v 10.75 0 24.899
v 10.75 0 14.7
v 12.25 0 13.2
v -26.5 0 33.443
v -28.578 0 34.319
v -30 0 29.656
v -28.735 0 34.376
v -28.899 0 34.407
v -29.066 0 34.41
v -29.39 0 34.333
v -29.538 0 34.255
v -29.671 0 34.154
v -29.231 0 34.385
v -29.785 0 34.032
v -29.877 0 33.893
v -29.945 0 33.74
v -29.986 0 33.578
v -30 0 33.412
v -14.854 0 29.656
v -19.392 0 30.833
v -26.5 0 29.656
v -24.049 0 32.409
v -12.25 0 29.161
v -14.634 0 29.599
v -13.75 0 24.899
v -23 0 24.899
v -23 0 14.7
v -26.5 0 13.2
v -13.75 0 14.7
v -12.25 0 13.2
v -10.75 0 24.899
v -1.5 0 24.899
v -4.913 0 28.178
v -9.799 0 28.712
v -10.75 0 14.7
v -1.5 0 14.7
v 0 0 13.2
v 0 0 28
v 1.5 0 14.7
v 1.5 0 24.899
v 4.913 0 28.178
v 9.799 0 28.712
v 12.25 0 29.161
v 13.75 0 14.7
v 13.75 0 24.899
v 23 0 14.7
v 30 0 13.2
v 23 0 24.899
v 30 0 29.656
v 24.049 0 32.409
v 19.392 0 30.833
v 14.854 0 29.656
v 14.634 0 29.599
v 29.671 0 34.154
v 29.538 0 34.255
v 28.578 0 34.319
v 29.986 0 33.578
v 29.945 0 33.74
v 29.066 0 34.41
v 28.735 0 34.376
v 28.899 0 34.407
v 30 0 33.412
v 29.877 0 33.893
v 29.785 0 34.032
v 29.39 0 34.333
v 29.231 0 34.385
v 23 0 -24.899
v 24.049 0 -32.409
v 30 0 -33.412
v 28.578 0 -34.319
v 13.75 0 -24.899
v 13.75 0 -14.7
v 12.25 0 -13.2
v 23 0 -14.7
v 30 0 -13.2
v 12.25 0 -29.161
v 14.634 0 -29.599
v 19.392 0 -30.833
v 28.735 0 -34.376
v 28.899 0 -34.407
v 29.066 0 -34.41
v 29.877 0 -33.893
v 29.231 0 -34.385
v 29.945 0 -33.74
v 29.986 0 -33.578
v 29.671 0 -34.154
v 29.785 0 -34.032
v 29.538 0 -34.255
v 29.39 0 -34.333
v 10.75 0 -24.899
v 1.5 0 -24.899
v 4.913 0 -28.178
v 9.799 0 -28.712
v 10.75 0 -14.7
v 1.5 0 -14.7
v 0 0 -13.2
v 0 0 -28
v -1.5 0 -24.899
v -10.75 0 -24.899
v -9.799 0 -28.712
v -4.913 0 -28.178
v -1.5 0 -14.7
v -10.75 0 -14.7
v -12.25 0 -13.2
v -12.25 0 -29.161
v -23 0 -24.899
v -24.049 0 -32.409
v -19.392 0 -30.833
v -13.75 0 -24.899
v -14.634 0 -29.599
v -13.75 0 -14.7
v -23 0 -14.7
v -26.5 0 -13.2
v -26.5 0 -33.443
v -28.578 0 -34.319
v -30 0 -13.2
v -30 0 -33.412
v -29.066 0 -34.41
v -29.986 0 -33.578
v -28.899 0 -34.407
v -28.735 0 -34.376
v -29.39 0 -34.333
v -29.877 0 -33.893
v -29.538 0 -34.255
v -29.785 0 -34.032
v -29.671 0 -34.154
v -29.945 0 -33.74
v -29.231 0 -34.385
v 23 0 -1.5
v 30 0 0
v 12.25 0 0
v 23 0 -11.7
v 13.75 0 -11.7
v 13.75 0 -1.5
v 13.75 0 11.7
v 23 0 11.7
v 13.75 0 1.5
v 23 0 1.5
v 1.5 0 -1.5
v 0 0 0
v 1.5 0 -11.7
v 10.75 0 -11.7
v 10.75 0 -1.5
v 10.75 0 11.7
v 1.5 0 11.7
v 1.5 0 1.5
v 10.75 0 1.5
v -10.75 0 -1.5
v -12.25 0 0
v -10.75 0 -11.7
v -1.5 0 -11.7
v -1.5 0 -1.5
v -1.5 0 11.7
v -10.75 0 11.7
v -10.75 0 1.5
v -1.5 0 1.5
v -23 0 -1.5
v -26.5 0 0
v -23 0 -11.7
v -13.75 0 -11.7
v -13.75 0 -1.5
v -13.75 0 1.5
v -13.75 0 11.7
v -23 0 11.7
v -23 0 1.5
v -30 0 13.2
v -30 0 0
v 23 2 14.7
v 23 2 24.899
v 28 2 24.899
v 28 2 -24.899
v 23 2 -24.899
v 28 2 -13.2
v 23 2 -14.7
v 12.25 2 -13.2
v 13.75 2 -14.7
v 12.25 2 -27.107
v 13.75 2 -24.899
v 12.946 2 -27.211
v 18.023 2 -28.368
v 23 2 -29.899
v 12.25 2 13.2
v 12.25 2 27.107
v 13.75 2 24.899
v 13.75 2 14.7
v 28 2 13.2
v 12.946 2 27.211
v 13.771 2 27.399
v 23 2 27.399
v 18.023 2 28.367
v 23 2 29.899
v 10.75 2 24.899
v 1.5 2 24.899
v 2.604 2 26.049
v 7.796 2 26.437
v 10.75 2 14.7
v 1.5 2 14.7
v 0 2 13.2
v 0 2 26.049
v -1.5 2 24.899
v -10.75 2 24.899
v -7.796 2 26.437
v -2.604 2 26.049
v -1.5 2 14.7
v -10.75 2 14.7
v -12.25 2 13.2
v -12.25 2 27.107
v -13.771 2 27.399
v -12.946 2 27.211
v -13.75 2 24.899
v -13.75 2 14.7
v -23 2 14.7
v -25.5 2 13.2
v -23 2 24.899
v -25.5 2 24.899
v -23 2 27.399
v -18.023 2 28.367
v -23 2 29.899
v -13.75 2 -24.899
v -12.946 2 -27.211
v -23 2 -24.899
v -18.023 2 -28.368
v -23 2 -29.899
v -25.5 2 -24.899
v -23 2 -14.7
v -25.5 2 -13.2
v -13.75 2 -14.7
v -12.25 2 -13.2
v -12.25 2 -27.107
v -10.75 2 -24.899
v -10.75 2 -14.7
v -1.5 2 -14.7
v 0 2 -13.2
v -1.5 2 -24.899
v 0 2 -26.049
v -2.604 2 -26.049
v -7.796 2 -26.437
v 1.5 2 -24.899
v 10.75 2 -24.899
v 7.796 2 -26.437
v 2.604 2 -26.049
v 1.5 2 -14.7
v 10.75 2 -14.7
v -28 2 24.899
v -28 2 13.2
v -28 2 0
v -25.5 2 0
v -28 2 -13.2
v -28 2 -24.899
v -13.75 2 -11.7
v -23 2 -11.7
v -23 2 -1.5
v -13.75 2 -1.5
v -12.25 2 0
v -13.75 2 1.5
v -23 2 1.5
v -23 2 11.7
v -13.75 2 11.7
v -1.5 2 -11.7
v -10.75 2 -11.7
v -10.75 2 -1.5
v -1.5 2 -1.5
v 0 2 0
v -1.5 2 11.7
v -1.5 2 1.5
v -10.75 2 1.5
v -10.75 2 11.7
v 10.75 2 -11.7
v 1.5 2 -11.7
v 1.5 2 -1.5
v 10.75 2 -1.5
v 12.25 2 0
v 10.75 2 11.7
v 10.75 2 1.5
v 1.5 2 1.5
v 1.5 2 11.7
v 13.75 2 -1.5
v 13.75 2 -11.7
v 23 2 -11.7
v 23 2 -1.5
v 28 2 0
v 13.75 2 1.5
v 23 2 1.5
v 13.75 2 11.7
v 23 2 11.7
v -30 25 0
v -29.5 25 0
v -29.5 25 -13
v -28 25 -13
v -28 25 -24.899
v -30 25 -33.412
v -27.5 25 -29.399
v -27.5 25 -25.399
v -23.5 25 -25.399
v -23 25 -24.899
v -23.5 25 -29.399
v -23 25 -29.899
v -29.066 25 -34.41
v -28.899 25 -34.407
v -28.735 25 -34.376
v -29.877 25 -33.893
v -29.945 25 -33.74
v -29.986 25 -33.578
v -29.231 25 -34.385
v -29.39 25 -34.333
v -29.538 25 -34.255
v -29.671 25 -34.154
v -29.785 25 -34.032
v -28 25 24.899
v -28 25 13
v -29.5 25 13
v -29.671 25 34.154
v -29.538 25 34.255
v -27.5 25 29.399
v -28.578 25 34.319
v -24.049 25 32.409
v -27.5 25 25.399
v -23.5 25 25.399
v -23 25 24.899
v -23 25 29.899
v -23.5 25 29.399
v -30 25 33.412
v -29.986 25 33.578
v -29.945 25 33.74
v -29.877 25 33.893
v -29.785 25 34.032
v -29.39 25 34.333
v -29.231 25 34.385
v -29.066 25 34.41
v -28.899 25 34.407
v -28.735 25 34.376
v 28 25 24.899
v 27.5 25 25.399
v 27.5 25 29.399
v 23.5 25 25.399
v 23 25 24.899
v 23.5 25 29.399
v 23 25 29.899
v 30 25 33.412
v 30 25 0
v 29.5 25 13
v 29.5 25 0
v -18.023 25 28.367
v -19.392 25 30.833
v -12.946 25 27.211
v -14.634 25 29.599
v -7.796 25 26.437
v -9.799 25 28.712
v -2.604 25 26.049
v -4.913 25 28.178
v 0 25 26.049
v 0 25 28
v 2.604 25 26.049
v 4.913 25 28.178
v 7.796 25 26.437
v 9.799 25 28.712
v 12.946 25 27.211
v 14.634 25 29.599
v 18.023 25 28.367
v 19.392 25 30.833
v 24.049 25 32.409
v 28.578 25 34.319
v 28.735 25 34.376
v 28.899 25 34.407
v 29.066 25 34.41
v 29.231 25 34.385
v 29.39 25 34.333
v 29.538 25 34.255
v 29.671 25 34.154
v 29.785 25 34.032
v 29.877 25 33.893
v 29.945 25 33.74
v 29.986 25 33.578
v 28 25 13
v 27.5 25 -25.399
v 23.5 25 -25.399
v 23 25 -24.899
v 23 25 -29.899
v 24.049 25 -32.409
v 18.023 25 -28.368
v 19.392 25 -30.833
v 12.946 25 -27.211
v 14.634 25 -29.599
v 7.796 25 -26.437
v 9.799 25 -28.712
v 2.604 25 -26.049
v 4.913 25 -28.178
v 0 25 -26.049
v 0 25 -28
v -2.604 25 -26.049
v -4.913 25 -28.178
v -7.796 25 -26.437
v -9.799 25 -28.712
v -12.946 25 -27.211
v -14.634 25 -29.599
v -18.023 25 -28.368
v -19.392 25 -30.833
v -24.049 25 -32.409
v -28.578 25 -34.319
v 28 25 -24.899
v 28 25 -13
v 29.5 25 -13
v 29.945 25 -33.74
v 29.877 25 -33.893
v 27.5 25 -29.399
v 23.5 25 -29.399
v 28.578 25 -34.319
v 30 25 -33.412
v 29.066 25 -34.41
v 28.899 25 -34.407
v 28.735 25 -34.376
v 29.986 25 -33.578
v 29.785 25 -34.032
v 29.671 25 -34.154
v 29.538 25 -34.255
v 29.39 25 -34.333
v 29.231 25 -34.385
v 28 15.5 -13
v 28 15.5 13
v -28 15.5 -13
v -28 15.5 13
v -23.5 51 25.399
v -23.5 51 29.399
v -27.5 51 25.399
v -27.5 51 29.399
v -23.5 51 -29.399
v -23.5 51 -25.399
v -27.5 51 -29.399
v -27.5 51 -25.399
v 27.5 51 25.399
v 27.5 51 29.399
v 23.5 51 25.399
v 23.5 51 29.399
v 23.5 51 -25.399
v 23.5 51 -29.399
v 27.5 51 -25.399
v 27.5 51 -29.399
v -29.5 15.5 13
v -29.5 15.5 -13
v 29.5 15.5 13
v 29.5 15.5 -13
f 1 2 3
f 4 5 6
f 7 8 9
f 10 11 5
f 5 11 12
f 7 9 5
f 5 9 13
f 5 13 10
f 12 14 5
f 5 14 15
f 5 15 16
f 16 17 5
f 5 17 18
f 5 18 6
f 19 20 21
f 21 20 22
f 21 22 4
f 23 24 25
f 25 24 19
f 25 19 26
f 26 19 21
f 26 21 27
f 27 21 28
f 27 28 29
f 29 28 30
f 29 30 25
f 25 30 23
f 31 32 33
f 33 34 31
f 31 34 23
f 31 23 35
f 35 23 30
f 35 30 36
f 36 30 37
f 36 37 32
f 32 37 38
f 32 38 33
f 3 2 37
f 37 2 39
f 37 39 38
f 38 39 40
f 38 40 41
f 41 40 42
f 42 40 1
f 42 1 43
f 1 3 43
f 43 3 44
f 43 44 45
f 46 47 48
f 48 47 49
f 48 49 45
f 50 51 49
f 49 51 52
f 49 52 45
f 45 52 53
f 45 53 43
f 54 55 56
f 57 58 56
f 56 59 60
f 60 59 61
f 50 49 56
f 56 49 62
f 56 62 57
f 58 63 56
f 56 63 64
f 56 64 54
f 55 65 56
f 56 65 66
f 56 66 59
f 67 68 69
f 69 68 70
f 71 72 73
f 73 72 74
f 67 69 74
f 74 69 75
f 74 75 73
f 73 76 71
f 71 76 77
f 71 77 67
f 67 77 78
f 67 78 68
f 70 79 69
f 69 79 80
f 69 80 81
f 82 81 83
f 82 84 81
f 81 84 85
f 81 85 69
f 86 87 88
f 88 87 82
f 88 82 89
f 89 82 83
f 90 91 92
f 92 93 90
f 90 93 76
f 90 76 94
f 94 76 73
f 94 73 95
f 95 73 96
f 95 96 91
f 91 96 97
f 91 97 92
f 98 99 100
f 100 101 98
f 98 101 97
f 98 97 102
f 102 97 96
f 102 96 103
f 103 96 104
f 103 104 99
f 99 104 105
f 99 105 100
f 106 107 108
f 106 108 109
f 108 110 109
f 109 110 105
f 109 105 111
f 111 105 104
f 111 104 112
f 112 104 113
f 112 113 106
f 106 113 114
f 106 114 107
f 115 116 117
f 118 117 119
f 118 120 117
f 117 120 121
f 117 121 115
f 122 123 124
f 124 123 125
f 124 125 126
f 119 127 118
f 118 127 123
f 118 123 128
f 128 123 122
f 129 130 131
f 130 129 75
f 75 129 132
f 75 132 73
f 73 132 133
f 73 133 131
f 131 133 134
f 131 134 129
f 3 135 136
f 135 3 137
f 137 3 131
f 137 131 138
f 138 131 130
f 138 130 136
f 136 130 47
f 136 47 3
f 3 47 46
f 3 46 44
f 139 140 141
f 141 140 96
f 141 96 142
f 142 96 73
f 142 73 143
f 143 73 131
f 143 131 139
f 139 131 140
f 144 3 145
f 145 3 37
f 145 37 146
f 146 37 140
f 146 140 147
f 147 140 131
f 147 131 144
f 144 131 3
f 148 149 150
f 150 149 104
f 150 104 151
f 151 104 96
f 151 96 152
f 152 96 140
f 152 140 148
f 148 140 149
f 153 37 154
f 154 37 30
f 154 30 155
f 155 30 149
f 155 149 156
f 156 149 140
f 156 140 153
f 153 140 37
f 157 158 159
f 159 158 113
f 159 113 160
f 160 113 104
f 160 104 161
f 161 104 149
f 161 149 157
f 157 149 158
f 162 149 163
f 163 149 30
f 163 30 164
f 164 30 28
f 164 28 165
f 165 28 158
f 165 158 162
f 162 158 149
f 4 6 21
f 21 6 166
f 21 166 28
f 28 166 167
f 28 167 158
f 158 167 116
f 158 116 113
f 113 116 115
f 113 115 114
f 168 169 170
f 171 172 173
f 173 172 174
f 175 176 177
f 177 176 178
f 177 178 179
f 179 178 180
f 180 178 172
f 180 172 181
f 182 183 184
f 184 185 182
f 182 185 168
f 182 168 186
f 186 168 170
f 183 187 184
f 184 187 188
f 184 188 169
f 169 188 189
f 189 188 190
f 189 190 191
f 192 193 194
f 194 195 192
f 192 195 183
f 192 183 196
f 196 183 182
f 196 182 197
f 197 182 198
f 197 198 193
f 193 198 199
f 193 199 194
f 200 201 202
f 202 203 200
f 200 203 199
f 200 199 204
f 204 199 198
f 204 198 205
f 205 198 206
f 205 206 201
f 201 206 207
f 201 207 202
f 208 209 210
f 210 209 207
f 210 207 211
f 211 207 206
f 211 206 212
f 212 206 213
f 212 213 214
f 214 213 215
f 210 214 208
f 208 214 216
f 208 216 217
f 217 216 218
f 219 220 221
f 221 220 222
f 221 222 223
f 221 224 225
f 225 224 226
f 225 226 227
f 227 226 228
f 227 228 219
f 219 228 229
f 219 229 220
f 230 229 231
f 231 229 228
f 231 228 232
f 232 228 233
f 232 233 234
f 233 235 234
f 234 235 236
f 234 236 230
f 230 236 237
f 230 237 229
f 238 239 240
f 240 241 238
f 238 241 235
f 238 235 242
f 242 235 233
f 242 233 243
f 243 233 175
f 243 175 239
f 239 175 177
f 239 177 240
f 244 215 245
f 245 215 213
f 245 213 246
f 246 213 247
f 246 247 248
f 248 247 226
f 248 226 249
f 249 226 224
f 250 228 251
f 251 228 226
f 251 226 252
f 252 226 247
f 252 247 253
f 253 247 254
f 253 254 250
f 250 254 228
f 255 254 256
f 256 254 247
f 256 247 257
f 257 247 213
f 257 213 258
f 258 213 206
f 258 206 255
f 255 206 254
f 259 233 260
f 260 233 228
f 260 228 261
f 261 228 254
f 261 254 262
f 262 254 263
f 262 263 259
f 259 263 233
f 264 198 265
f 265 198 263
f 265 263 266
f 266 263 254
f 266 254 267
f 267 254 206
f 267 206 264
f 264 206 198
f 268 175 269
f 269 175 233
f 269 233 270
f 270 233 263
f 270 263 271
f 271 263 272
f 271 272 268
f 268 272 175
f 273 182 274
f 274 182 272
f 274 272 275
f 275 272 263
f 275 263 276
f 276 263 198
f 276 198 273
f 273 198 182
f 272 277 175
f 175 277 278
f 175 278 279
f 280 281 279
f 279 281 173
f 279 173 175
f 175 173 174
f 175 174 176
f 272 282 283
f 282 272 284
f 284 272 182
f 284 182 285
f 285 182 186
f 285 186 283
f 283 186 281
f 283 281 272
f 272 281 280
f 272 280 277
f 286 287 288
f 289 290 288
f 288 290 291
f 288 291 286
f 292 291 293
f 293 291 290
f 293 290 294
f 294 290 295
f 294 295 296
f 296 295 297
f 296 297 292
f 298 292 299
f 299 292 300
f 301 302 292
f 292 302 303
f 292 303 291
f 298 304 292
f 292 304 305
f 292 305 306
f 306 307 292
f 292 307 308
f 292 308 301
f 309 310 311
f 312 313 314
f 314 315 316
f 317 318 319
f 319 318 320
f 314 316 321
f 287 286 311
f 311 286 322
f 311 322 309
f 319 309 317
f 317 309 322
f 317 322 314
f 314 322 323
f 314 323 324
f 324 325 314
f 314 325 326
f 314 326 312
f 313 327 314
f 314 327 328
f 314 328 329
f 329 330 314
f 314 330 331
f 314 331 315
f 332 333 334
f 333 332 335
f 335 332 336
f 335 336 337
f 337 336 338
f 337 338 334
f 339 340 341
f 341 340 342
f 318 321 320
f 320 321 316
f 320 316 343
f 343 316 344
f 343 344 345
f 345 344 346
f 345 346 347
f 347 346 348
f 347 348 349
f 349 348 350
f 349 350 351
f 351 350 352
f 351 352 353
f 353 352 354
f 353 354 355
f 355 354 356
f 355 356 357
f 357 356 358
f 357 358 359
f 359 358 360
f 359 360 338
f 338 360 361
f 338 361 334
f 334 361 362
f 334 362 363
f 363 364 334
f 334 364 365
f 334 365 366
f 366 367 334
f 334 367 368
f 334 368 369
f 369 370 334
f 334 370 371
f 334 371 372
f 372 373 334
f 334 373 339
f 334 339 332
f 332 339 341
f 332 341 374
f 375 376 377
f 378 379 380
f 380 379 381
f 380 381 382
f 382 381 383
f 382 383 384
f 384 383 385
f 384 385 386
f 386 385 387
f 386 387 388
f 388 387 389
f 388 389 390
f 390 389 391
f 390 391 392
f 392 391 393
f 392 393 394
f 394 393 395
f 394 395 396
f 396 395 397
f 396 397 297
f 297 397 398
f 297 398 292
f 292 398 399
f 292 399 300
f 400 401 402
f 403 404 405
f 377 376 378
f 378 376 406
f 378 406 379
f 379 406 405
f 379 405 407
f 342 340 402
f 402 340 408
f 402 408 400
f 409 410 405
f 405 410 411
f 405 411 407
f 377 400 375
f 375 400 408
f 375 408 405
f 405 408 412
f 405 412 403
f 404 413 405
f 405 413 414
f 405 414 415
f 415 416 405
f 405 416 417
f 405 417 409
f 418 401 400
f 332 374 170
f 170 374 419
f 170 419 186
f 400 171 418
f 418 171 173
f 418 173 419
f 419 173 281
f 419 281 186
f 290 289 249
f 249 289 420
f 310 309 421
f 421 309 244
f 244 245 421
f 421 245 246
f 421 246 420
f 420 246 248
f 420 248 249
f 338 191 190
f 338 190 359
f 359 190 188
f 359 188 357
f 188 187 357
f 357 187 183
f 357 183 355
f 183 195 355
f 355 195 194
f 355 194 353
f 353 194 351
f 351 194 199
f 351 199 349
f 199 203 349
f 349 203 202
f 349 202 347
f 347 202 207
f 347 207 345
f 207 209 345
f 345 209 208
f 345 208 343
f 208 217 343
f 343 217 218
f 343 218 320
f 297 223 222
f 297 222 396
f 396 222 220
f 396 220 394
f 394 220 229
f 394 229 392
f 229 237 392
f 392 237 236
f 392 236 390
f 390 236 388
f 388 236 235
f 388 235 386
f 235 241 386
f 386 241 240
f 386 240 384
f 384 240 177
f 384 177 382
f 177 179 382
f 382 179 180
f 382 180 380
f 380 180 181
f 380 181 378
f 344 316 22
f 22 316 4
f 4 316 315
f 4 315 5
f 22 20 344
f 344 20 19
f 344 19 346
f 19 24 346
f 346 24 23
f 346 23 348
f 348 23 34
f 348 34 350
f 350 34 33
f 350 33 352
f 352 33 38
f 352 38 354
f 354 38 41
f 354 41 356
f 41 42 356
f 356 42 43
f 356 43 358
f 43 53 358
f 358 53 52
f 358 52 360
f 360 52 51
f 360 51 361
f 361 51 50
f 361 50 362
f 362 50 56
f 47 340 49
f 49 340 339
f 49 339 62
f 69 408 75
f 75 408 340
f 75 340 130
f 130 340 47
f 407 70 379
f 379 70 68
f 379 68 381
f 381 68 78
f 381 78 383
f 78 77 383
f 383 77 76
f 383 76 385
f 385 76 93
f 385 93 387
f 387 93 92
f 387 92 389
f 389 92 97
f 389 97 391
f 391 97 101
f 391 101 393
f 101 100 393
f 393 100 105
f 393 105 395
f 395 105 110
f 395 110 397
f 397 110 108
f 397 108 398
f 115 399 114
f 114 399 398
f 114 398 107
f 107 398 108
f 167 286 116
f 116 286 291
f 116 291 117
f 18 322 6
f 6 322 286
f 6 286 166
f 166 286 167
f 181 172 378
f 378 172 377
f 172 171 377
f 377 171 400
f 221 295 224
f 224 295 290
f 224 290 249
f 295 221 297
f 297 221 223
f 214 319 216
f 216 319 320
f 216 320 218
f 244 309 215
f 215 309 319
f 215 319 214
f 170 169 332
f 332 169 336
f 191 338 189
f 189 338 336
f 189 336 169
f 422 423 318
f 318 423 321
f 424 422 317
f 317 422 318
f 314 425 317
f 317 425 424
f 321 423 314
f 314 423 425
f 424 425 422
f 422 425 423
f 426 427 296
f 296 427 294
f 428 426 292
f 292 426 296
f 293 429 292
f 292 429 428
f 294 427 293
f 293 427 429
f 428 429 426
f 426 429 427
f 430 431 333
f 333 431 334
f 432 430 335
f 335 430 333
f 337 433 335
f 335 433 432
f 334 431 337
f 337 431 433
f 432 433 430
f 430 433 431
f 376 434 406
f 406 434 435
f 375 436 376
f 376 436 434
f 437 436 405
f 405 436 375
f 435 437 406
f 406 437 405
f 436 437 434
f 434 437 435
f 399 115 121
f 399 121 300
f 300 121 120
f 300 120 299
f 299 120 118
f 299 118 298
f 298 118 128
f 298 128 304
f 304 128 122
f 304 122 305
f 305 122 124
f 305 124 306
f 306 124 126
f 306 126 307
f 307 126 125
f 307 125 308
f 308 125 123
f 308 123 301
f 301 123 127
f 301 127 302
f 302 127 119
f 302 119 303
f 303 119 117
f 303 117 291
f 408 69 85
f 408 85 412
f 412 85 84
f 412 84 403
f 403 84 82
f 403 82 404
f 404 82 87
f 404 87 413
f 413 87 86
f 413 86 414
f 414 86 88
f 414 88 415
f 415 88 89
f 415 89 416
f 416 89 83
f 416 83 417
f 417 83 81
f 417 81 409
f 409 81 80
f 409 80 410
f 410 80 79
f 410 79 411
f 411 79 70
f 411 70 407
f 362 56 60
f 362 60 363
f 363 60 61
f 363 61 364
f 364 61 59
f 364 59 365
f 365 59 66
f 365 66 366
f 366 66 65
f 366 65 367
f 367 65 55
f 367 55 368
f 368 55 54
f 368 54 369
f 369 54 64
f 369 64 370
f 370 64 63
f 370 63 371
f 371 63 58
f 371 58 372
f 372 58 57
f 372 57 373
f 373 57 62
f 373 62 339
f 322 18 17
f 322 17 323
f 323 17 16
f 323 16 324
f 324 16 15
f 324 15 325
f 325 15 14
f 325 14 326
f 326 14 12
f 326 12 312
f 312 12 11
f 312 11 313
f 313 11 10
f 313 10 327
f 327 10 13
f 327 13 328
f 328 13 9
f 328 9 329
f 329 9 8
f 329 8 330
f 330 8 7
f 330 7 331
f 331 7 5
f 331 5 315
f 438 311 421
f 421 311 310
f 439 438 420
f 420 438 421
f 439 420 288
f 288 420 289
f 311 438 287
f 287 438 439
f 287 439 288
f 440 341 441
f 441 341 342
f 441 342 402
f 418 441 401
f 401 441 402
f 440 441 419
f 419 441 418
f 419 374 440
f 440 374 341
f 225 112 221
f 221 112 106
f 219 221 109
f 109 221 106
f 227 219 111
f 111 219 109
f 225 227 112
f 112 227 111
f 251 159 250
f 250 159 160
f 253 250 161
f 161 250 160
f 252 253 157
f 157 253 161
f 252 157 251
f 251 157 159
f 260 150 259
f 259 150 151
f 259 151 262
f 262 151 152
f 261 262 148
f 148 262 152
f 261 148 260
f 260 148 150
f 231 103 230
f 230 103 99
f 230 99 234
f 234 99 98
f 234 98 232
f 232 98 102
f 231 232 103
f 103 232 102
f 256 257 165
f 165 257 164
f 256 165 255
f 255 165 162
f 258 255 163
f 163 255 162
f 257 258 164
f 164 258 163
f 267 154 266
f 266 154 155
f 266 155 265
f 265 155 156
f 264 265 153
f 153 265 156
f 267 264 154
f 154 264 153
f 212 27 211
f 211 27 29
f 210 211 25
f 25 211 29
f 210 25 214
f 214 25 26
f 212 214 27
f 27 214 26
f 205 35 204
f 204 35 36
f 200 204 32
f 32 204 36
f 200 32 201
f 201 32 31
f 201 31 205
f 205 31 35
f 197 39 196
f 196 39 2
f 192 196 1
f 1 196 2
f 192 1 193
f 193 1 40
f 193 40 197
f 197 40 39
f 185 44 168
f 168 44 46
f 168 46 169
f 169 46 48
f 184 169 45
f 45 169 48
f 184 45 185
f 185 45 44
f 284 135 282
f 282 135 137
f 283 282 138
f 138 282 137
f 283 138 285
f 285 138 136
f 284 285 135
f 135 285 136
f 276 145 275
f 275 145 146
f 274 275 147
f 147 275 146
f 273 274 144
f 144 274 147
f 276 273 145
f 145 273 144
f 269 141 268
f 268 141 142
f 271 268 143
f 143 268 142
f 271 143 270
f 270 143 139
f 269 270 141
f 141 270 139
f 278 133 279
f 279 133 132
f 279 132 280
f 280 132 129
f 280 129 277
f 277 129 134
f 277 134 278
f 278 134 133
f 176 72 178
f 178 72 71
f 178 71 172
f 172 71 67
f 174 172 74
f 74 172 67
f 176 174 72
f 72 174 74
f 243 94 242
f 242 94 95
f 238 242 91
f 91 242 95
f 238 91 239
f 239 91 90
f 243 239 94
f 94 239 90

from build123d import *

# Parameters (mm, degrees)
RESSALTO_EXTRUS_O1_DEPTH = 25
CASCA1_T                 = -2
ESBO_O3_W                = 4
ESBO_O3_H                = 4
RESSALTO_EXTRUS_O2_DEPTH = 23
ESBO_O3_3_W              = 4
ESBO_O3_3_H              = 4
RESSALTO_EXTRUS_O3_DEPTH = 49
FILETE1_R                = 1
CORTE_EXTRUS_O1_START    = -0.5
ESBO_O4_W                = 26
ESBO_O4_H                = 9.5
ESBO_O4_H_2              = 3.5
CORTE_EXTRUS_O1_DEPTH    = 59
ESBO_O5_W                = 9.25
ESBO_O5_H                = 10.19955009
CORTE_EXTRUS_O2_DEPTH    = 10


with BuildPart() as part:
    # Esboço2 → Ressalto-extrusão1 (new body)
    with BuildSketch(Plane(origin=(0, 0, 0), x_dir=(1, 0, 0), z_dir=(0, 1, 0))):
        with BuildLine():
            Line((-30, 35), (-30, -35))
            ThreePointArc((-30, -35), (0, -28), (30, -35))
            Line((30, -35), (30, 35))
            ThreePointArc((30, 35), (0, 28), (-30, 35))
        make_face()
    extrude(amount=RESSALTO_EXTRUS_O1_DEPTH)

    # Casca1
    casca1_openings = [part.faces().sort_by_distance(p)[0] for p in [
        (0, 25, 0),
    ]]
    offset(amount=CASCA1_T, openings=casca1_openings, kind=Kind.INTERSECTION)

    # Esboço3 → Ressalto-extrusão2 (add)
    # profile 1 of 4: a face of its own
    with BuildSketch(Plane(origin=(0, 2, 0), x_dir=(1, 0, 0), z_dir=(0, 1, 0))):
        with BuildLine():
            Line((23, 24.89910018), (28, 24.89910018))
            Line((28, 24.89910018), (28, 31.863527853))
            ThreePointArc((28, 31.863527853), (25.518909538, 30.833184124), (23, 29.89910018))
            Line((23, 29.89910018), (23, 24.89910018))
        make_face()
        with Locations((25.5, 27.39910018)):
            Rectangle(ESBO_O3_W, ESBO_O3_H, mode=Mode.SUBTRACT)
    # profile 2 of 4: a face of its own
    with BuildSketch(Plane(origin=(0, 2, 0), x_dir=(1, 0, 0), z_dir=(0, 1, 0))):
        with BuildLine():
            Line((28, -31.863527853), (28, -24.89910018))
            Line((28, -24.89910018), (23, -24.89910018))
            Line((23, -24.89910018), (23, -29.89910018))
            ThreePointArc((23, -29.89910018), (25.518909538, -30.833184124), (28, -31.863527853))
        make_face()
        with Locations((25.5, -27.39910018)):
            Rectangle(ESBO_O3_W, ESBO_O3_H, mode=Mode.SUBTRACT)
    # profile 3 of 4: a face of its own
    with BuildSketch(Plane(origin=(0, 2, 0), x_dir=(1, 0, 0), z_dir=(0, 1, 0))):
        with BuildLine():
            Line((-23, 24.89910018), (-23, 29.89910018))
            ThreePointArc((-23, 29.89910018), (-25.518909538, 30.833184124), (-28, 31.863527853))
            Line((-28, 31.863527853), (-28, 24.89910018))
            Line((-28, 24.89910018), (-23, 24.89910018))
        make_face()
        with Locations((-25.5, 27.39910018)):
            Rectangle(ESBO_O3_W, ESBO_O3_H, mode=Mode.SUBTRACT)
    # profile 4 of 4: a face of its own
    with BuildSketch(Plane(origin=(0, 2, 0), x_dir=(1, 0, 0), z_dir=(0, 1, 0))):
        with BuildLine():
            ThreePointArc((-28, -31.863527853), (-25.518909538, -30.833184124), (-23, -29.89910018))
            Line((-23, -29.89910018), (-23, -24.89910018))
            Line((-23, -24.89910018), (-28, -24.89910018))
            Line((-28, -24.89910018), (-28, -31.863527853))
        make_face()
        with Locations((-25.5, -27.39910018)):
            Rectangle(ESBO_O3_W, ESBO_O3_H, mode=Mode.SUBTRACT)
    extrude(amount=RESSALTO_EXTRUS_O2_DEPTH)

    # Esboço3<3> → Ressalto-extrusão3 (add)
    with BuildSketch(Plane(origin=(0, 2, 0), x_dir=(1, 0, 0), z_dir=(0, 1, 0))):
        with Locations((25.5, 27.39910018)):
            Rectangle(ESBO_O3_3_W, ESBO_O3_3_H)
        with Locations((25.5, -27.39910018)):
            Rectangle(ESBO_O3_3_W, ESBO_O3_3_H)
        with Locations((-25.5, 27.39910018)):
            Rectangle(ESBO_O3_3_W, ESBO_O3_3_H)
        with Locations((-25.5, -27.39910018)):
            Rectangle(ESBO_O3_3_W, ESBO_O3_3_H)
    extrude(amount=RESSALTO_EXTRUS_O3_DEPTH)

    # Filete1
    filete1_edges = [part.edges().sort_by_distance(p)[0] for p in [
        (-30, 12.5, 35),
        (-30, 12.5, -35),
        (30, 12.5, -35),
        (30, 12.5, 35),
    ]]
    fillet(filete1_edges, radius=FILETE1_R)

    # Esboço4 → Corte-extrusão1 (cut)
    with BuildSketch(Plane(origin=(30, 0, 0), x_dir=(0, 0, -1), z_dir=(1, 0, 0)).offset(CORTE_EXTRUS_O1_START)):
        with Locations((0, 20.25)):
            Rectangle(ESBO_O4_W, ESBO_O4_H)
        with Locations((0, 26.75)):
            Rectangle(ESBO_O4_W, ESBO_O4_H_2)
    extrude(amount=-CORTE_EXTRUS_O1_DEPTH, mode=Mode.SUBTRACT)

    # Esboço5 → Corte-extrusão2 (cut)
    with BuildSketch(Plane(origin=(0, 2, 0), x_dir=(1, 0, 0), z_dir=(0, 1, 0))):
        with Locations((-18.375, 19.799325135)):
            Rectangle(ESBO_O5_W, ESBO_O5_H)
        Polygon((-13.75, 4.5), (-13.75, 11.69955009), (-23, 11.69955009), (-23, 4.5), (-23, 1.5), (-13.75, 1.5), align=None)
        with Locations((-6.125, 6.599775045)):
            Rectangle(ESBO_O5_W, ESBO_O5_H)
        Polygon((-10.75, 24.89910018), (-10.75, 14.69955009), (-4.5, 14.69955009), (-1.5, 14.69955009), (-1.5, 24.89910018), (-4.5, 24.89910018), align=None)
        Polygon((-23, -11.69955009), (-13.75, -11.69955009), (-13.75, -4.5), (-13.75, -1.5), (-23, -1.5), (-23, -4.5), align=None)
        with Locations((-6.125, -6.599775045)):
            Rectangle(ESBO_O5_W, ESBO_O5_H)
        with Locations((-18.375, -19.799325135)):
            Rectangle(ESBO_O5_W, ESBO_O5_H)
        Polygon((-1.5, -14.69955009), (-4.5, -14.69955009), (-10.75, -14.69955009), (-10.75, -24.89910018), (-4.5, -24.89910018), (-1.5, -24.89910018), align=None)
        Polygon((10.75, -14.69955009), (1.5, -14.69955009), (1.5, -24.89910018), (4.5, -24.89910018), (10.75, -24.89910018), align=None)
        with Locations((18.375, -19.799325135)):
            Rectangle(ESBO_O5_W, ESBO_O5_H)
        Polygon((13.75, -1.5), (13.75, -11.69955009), (23, -11.69955009), (23, -4.5), (23, -1.5), align=None)
        with Locations((6.125, -6.599775045)):
            Rectangle(ESBO_O5_W, ESBO_O5_H)
        with Locations((6.125, 6.599775045)):
            Rectangle(ESBO_O5_W, ESBO_O5_H)
        Polygon((13.75, 11.69955009), (13.75, 1.5), (23, 1.5), (23, 4.5), (23, 11.69955009), align=None)
        with Locations((18.375, 19.799325135)):
            Rectangle(ESBO_O5_W, ESBO_O5_H)
        Polygon((4.5, 14.69955009), (10.75, 14.69955009), (10.75, 24.89910018), (4.5, 24.89910018), (1.5, 24.89910018), (1.5, 14.69955009), align=None)
    extrude(amount=-CORTE_EXTRUS_O2_DEPTH, mode=Mode.SUBTRACT)


solid = part.part
